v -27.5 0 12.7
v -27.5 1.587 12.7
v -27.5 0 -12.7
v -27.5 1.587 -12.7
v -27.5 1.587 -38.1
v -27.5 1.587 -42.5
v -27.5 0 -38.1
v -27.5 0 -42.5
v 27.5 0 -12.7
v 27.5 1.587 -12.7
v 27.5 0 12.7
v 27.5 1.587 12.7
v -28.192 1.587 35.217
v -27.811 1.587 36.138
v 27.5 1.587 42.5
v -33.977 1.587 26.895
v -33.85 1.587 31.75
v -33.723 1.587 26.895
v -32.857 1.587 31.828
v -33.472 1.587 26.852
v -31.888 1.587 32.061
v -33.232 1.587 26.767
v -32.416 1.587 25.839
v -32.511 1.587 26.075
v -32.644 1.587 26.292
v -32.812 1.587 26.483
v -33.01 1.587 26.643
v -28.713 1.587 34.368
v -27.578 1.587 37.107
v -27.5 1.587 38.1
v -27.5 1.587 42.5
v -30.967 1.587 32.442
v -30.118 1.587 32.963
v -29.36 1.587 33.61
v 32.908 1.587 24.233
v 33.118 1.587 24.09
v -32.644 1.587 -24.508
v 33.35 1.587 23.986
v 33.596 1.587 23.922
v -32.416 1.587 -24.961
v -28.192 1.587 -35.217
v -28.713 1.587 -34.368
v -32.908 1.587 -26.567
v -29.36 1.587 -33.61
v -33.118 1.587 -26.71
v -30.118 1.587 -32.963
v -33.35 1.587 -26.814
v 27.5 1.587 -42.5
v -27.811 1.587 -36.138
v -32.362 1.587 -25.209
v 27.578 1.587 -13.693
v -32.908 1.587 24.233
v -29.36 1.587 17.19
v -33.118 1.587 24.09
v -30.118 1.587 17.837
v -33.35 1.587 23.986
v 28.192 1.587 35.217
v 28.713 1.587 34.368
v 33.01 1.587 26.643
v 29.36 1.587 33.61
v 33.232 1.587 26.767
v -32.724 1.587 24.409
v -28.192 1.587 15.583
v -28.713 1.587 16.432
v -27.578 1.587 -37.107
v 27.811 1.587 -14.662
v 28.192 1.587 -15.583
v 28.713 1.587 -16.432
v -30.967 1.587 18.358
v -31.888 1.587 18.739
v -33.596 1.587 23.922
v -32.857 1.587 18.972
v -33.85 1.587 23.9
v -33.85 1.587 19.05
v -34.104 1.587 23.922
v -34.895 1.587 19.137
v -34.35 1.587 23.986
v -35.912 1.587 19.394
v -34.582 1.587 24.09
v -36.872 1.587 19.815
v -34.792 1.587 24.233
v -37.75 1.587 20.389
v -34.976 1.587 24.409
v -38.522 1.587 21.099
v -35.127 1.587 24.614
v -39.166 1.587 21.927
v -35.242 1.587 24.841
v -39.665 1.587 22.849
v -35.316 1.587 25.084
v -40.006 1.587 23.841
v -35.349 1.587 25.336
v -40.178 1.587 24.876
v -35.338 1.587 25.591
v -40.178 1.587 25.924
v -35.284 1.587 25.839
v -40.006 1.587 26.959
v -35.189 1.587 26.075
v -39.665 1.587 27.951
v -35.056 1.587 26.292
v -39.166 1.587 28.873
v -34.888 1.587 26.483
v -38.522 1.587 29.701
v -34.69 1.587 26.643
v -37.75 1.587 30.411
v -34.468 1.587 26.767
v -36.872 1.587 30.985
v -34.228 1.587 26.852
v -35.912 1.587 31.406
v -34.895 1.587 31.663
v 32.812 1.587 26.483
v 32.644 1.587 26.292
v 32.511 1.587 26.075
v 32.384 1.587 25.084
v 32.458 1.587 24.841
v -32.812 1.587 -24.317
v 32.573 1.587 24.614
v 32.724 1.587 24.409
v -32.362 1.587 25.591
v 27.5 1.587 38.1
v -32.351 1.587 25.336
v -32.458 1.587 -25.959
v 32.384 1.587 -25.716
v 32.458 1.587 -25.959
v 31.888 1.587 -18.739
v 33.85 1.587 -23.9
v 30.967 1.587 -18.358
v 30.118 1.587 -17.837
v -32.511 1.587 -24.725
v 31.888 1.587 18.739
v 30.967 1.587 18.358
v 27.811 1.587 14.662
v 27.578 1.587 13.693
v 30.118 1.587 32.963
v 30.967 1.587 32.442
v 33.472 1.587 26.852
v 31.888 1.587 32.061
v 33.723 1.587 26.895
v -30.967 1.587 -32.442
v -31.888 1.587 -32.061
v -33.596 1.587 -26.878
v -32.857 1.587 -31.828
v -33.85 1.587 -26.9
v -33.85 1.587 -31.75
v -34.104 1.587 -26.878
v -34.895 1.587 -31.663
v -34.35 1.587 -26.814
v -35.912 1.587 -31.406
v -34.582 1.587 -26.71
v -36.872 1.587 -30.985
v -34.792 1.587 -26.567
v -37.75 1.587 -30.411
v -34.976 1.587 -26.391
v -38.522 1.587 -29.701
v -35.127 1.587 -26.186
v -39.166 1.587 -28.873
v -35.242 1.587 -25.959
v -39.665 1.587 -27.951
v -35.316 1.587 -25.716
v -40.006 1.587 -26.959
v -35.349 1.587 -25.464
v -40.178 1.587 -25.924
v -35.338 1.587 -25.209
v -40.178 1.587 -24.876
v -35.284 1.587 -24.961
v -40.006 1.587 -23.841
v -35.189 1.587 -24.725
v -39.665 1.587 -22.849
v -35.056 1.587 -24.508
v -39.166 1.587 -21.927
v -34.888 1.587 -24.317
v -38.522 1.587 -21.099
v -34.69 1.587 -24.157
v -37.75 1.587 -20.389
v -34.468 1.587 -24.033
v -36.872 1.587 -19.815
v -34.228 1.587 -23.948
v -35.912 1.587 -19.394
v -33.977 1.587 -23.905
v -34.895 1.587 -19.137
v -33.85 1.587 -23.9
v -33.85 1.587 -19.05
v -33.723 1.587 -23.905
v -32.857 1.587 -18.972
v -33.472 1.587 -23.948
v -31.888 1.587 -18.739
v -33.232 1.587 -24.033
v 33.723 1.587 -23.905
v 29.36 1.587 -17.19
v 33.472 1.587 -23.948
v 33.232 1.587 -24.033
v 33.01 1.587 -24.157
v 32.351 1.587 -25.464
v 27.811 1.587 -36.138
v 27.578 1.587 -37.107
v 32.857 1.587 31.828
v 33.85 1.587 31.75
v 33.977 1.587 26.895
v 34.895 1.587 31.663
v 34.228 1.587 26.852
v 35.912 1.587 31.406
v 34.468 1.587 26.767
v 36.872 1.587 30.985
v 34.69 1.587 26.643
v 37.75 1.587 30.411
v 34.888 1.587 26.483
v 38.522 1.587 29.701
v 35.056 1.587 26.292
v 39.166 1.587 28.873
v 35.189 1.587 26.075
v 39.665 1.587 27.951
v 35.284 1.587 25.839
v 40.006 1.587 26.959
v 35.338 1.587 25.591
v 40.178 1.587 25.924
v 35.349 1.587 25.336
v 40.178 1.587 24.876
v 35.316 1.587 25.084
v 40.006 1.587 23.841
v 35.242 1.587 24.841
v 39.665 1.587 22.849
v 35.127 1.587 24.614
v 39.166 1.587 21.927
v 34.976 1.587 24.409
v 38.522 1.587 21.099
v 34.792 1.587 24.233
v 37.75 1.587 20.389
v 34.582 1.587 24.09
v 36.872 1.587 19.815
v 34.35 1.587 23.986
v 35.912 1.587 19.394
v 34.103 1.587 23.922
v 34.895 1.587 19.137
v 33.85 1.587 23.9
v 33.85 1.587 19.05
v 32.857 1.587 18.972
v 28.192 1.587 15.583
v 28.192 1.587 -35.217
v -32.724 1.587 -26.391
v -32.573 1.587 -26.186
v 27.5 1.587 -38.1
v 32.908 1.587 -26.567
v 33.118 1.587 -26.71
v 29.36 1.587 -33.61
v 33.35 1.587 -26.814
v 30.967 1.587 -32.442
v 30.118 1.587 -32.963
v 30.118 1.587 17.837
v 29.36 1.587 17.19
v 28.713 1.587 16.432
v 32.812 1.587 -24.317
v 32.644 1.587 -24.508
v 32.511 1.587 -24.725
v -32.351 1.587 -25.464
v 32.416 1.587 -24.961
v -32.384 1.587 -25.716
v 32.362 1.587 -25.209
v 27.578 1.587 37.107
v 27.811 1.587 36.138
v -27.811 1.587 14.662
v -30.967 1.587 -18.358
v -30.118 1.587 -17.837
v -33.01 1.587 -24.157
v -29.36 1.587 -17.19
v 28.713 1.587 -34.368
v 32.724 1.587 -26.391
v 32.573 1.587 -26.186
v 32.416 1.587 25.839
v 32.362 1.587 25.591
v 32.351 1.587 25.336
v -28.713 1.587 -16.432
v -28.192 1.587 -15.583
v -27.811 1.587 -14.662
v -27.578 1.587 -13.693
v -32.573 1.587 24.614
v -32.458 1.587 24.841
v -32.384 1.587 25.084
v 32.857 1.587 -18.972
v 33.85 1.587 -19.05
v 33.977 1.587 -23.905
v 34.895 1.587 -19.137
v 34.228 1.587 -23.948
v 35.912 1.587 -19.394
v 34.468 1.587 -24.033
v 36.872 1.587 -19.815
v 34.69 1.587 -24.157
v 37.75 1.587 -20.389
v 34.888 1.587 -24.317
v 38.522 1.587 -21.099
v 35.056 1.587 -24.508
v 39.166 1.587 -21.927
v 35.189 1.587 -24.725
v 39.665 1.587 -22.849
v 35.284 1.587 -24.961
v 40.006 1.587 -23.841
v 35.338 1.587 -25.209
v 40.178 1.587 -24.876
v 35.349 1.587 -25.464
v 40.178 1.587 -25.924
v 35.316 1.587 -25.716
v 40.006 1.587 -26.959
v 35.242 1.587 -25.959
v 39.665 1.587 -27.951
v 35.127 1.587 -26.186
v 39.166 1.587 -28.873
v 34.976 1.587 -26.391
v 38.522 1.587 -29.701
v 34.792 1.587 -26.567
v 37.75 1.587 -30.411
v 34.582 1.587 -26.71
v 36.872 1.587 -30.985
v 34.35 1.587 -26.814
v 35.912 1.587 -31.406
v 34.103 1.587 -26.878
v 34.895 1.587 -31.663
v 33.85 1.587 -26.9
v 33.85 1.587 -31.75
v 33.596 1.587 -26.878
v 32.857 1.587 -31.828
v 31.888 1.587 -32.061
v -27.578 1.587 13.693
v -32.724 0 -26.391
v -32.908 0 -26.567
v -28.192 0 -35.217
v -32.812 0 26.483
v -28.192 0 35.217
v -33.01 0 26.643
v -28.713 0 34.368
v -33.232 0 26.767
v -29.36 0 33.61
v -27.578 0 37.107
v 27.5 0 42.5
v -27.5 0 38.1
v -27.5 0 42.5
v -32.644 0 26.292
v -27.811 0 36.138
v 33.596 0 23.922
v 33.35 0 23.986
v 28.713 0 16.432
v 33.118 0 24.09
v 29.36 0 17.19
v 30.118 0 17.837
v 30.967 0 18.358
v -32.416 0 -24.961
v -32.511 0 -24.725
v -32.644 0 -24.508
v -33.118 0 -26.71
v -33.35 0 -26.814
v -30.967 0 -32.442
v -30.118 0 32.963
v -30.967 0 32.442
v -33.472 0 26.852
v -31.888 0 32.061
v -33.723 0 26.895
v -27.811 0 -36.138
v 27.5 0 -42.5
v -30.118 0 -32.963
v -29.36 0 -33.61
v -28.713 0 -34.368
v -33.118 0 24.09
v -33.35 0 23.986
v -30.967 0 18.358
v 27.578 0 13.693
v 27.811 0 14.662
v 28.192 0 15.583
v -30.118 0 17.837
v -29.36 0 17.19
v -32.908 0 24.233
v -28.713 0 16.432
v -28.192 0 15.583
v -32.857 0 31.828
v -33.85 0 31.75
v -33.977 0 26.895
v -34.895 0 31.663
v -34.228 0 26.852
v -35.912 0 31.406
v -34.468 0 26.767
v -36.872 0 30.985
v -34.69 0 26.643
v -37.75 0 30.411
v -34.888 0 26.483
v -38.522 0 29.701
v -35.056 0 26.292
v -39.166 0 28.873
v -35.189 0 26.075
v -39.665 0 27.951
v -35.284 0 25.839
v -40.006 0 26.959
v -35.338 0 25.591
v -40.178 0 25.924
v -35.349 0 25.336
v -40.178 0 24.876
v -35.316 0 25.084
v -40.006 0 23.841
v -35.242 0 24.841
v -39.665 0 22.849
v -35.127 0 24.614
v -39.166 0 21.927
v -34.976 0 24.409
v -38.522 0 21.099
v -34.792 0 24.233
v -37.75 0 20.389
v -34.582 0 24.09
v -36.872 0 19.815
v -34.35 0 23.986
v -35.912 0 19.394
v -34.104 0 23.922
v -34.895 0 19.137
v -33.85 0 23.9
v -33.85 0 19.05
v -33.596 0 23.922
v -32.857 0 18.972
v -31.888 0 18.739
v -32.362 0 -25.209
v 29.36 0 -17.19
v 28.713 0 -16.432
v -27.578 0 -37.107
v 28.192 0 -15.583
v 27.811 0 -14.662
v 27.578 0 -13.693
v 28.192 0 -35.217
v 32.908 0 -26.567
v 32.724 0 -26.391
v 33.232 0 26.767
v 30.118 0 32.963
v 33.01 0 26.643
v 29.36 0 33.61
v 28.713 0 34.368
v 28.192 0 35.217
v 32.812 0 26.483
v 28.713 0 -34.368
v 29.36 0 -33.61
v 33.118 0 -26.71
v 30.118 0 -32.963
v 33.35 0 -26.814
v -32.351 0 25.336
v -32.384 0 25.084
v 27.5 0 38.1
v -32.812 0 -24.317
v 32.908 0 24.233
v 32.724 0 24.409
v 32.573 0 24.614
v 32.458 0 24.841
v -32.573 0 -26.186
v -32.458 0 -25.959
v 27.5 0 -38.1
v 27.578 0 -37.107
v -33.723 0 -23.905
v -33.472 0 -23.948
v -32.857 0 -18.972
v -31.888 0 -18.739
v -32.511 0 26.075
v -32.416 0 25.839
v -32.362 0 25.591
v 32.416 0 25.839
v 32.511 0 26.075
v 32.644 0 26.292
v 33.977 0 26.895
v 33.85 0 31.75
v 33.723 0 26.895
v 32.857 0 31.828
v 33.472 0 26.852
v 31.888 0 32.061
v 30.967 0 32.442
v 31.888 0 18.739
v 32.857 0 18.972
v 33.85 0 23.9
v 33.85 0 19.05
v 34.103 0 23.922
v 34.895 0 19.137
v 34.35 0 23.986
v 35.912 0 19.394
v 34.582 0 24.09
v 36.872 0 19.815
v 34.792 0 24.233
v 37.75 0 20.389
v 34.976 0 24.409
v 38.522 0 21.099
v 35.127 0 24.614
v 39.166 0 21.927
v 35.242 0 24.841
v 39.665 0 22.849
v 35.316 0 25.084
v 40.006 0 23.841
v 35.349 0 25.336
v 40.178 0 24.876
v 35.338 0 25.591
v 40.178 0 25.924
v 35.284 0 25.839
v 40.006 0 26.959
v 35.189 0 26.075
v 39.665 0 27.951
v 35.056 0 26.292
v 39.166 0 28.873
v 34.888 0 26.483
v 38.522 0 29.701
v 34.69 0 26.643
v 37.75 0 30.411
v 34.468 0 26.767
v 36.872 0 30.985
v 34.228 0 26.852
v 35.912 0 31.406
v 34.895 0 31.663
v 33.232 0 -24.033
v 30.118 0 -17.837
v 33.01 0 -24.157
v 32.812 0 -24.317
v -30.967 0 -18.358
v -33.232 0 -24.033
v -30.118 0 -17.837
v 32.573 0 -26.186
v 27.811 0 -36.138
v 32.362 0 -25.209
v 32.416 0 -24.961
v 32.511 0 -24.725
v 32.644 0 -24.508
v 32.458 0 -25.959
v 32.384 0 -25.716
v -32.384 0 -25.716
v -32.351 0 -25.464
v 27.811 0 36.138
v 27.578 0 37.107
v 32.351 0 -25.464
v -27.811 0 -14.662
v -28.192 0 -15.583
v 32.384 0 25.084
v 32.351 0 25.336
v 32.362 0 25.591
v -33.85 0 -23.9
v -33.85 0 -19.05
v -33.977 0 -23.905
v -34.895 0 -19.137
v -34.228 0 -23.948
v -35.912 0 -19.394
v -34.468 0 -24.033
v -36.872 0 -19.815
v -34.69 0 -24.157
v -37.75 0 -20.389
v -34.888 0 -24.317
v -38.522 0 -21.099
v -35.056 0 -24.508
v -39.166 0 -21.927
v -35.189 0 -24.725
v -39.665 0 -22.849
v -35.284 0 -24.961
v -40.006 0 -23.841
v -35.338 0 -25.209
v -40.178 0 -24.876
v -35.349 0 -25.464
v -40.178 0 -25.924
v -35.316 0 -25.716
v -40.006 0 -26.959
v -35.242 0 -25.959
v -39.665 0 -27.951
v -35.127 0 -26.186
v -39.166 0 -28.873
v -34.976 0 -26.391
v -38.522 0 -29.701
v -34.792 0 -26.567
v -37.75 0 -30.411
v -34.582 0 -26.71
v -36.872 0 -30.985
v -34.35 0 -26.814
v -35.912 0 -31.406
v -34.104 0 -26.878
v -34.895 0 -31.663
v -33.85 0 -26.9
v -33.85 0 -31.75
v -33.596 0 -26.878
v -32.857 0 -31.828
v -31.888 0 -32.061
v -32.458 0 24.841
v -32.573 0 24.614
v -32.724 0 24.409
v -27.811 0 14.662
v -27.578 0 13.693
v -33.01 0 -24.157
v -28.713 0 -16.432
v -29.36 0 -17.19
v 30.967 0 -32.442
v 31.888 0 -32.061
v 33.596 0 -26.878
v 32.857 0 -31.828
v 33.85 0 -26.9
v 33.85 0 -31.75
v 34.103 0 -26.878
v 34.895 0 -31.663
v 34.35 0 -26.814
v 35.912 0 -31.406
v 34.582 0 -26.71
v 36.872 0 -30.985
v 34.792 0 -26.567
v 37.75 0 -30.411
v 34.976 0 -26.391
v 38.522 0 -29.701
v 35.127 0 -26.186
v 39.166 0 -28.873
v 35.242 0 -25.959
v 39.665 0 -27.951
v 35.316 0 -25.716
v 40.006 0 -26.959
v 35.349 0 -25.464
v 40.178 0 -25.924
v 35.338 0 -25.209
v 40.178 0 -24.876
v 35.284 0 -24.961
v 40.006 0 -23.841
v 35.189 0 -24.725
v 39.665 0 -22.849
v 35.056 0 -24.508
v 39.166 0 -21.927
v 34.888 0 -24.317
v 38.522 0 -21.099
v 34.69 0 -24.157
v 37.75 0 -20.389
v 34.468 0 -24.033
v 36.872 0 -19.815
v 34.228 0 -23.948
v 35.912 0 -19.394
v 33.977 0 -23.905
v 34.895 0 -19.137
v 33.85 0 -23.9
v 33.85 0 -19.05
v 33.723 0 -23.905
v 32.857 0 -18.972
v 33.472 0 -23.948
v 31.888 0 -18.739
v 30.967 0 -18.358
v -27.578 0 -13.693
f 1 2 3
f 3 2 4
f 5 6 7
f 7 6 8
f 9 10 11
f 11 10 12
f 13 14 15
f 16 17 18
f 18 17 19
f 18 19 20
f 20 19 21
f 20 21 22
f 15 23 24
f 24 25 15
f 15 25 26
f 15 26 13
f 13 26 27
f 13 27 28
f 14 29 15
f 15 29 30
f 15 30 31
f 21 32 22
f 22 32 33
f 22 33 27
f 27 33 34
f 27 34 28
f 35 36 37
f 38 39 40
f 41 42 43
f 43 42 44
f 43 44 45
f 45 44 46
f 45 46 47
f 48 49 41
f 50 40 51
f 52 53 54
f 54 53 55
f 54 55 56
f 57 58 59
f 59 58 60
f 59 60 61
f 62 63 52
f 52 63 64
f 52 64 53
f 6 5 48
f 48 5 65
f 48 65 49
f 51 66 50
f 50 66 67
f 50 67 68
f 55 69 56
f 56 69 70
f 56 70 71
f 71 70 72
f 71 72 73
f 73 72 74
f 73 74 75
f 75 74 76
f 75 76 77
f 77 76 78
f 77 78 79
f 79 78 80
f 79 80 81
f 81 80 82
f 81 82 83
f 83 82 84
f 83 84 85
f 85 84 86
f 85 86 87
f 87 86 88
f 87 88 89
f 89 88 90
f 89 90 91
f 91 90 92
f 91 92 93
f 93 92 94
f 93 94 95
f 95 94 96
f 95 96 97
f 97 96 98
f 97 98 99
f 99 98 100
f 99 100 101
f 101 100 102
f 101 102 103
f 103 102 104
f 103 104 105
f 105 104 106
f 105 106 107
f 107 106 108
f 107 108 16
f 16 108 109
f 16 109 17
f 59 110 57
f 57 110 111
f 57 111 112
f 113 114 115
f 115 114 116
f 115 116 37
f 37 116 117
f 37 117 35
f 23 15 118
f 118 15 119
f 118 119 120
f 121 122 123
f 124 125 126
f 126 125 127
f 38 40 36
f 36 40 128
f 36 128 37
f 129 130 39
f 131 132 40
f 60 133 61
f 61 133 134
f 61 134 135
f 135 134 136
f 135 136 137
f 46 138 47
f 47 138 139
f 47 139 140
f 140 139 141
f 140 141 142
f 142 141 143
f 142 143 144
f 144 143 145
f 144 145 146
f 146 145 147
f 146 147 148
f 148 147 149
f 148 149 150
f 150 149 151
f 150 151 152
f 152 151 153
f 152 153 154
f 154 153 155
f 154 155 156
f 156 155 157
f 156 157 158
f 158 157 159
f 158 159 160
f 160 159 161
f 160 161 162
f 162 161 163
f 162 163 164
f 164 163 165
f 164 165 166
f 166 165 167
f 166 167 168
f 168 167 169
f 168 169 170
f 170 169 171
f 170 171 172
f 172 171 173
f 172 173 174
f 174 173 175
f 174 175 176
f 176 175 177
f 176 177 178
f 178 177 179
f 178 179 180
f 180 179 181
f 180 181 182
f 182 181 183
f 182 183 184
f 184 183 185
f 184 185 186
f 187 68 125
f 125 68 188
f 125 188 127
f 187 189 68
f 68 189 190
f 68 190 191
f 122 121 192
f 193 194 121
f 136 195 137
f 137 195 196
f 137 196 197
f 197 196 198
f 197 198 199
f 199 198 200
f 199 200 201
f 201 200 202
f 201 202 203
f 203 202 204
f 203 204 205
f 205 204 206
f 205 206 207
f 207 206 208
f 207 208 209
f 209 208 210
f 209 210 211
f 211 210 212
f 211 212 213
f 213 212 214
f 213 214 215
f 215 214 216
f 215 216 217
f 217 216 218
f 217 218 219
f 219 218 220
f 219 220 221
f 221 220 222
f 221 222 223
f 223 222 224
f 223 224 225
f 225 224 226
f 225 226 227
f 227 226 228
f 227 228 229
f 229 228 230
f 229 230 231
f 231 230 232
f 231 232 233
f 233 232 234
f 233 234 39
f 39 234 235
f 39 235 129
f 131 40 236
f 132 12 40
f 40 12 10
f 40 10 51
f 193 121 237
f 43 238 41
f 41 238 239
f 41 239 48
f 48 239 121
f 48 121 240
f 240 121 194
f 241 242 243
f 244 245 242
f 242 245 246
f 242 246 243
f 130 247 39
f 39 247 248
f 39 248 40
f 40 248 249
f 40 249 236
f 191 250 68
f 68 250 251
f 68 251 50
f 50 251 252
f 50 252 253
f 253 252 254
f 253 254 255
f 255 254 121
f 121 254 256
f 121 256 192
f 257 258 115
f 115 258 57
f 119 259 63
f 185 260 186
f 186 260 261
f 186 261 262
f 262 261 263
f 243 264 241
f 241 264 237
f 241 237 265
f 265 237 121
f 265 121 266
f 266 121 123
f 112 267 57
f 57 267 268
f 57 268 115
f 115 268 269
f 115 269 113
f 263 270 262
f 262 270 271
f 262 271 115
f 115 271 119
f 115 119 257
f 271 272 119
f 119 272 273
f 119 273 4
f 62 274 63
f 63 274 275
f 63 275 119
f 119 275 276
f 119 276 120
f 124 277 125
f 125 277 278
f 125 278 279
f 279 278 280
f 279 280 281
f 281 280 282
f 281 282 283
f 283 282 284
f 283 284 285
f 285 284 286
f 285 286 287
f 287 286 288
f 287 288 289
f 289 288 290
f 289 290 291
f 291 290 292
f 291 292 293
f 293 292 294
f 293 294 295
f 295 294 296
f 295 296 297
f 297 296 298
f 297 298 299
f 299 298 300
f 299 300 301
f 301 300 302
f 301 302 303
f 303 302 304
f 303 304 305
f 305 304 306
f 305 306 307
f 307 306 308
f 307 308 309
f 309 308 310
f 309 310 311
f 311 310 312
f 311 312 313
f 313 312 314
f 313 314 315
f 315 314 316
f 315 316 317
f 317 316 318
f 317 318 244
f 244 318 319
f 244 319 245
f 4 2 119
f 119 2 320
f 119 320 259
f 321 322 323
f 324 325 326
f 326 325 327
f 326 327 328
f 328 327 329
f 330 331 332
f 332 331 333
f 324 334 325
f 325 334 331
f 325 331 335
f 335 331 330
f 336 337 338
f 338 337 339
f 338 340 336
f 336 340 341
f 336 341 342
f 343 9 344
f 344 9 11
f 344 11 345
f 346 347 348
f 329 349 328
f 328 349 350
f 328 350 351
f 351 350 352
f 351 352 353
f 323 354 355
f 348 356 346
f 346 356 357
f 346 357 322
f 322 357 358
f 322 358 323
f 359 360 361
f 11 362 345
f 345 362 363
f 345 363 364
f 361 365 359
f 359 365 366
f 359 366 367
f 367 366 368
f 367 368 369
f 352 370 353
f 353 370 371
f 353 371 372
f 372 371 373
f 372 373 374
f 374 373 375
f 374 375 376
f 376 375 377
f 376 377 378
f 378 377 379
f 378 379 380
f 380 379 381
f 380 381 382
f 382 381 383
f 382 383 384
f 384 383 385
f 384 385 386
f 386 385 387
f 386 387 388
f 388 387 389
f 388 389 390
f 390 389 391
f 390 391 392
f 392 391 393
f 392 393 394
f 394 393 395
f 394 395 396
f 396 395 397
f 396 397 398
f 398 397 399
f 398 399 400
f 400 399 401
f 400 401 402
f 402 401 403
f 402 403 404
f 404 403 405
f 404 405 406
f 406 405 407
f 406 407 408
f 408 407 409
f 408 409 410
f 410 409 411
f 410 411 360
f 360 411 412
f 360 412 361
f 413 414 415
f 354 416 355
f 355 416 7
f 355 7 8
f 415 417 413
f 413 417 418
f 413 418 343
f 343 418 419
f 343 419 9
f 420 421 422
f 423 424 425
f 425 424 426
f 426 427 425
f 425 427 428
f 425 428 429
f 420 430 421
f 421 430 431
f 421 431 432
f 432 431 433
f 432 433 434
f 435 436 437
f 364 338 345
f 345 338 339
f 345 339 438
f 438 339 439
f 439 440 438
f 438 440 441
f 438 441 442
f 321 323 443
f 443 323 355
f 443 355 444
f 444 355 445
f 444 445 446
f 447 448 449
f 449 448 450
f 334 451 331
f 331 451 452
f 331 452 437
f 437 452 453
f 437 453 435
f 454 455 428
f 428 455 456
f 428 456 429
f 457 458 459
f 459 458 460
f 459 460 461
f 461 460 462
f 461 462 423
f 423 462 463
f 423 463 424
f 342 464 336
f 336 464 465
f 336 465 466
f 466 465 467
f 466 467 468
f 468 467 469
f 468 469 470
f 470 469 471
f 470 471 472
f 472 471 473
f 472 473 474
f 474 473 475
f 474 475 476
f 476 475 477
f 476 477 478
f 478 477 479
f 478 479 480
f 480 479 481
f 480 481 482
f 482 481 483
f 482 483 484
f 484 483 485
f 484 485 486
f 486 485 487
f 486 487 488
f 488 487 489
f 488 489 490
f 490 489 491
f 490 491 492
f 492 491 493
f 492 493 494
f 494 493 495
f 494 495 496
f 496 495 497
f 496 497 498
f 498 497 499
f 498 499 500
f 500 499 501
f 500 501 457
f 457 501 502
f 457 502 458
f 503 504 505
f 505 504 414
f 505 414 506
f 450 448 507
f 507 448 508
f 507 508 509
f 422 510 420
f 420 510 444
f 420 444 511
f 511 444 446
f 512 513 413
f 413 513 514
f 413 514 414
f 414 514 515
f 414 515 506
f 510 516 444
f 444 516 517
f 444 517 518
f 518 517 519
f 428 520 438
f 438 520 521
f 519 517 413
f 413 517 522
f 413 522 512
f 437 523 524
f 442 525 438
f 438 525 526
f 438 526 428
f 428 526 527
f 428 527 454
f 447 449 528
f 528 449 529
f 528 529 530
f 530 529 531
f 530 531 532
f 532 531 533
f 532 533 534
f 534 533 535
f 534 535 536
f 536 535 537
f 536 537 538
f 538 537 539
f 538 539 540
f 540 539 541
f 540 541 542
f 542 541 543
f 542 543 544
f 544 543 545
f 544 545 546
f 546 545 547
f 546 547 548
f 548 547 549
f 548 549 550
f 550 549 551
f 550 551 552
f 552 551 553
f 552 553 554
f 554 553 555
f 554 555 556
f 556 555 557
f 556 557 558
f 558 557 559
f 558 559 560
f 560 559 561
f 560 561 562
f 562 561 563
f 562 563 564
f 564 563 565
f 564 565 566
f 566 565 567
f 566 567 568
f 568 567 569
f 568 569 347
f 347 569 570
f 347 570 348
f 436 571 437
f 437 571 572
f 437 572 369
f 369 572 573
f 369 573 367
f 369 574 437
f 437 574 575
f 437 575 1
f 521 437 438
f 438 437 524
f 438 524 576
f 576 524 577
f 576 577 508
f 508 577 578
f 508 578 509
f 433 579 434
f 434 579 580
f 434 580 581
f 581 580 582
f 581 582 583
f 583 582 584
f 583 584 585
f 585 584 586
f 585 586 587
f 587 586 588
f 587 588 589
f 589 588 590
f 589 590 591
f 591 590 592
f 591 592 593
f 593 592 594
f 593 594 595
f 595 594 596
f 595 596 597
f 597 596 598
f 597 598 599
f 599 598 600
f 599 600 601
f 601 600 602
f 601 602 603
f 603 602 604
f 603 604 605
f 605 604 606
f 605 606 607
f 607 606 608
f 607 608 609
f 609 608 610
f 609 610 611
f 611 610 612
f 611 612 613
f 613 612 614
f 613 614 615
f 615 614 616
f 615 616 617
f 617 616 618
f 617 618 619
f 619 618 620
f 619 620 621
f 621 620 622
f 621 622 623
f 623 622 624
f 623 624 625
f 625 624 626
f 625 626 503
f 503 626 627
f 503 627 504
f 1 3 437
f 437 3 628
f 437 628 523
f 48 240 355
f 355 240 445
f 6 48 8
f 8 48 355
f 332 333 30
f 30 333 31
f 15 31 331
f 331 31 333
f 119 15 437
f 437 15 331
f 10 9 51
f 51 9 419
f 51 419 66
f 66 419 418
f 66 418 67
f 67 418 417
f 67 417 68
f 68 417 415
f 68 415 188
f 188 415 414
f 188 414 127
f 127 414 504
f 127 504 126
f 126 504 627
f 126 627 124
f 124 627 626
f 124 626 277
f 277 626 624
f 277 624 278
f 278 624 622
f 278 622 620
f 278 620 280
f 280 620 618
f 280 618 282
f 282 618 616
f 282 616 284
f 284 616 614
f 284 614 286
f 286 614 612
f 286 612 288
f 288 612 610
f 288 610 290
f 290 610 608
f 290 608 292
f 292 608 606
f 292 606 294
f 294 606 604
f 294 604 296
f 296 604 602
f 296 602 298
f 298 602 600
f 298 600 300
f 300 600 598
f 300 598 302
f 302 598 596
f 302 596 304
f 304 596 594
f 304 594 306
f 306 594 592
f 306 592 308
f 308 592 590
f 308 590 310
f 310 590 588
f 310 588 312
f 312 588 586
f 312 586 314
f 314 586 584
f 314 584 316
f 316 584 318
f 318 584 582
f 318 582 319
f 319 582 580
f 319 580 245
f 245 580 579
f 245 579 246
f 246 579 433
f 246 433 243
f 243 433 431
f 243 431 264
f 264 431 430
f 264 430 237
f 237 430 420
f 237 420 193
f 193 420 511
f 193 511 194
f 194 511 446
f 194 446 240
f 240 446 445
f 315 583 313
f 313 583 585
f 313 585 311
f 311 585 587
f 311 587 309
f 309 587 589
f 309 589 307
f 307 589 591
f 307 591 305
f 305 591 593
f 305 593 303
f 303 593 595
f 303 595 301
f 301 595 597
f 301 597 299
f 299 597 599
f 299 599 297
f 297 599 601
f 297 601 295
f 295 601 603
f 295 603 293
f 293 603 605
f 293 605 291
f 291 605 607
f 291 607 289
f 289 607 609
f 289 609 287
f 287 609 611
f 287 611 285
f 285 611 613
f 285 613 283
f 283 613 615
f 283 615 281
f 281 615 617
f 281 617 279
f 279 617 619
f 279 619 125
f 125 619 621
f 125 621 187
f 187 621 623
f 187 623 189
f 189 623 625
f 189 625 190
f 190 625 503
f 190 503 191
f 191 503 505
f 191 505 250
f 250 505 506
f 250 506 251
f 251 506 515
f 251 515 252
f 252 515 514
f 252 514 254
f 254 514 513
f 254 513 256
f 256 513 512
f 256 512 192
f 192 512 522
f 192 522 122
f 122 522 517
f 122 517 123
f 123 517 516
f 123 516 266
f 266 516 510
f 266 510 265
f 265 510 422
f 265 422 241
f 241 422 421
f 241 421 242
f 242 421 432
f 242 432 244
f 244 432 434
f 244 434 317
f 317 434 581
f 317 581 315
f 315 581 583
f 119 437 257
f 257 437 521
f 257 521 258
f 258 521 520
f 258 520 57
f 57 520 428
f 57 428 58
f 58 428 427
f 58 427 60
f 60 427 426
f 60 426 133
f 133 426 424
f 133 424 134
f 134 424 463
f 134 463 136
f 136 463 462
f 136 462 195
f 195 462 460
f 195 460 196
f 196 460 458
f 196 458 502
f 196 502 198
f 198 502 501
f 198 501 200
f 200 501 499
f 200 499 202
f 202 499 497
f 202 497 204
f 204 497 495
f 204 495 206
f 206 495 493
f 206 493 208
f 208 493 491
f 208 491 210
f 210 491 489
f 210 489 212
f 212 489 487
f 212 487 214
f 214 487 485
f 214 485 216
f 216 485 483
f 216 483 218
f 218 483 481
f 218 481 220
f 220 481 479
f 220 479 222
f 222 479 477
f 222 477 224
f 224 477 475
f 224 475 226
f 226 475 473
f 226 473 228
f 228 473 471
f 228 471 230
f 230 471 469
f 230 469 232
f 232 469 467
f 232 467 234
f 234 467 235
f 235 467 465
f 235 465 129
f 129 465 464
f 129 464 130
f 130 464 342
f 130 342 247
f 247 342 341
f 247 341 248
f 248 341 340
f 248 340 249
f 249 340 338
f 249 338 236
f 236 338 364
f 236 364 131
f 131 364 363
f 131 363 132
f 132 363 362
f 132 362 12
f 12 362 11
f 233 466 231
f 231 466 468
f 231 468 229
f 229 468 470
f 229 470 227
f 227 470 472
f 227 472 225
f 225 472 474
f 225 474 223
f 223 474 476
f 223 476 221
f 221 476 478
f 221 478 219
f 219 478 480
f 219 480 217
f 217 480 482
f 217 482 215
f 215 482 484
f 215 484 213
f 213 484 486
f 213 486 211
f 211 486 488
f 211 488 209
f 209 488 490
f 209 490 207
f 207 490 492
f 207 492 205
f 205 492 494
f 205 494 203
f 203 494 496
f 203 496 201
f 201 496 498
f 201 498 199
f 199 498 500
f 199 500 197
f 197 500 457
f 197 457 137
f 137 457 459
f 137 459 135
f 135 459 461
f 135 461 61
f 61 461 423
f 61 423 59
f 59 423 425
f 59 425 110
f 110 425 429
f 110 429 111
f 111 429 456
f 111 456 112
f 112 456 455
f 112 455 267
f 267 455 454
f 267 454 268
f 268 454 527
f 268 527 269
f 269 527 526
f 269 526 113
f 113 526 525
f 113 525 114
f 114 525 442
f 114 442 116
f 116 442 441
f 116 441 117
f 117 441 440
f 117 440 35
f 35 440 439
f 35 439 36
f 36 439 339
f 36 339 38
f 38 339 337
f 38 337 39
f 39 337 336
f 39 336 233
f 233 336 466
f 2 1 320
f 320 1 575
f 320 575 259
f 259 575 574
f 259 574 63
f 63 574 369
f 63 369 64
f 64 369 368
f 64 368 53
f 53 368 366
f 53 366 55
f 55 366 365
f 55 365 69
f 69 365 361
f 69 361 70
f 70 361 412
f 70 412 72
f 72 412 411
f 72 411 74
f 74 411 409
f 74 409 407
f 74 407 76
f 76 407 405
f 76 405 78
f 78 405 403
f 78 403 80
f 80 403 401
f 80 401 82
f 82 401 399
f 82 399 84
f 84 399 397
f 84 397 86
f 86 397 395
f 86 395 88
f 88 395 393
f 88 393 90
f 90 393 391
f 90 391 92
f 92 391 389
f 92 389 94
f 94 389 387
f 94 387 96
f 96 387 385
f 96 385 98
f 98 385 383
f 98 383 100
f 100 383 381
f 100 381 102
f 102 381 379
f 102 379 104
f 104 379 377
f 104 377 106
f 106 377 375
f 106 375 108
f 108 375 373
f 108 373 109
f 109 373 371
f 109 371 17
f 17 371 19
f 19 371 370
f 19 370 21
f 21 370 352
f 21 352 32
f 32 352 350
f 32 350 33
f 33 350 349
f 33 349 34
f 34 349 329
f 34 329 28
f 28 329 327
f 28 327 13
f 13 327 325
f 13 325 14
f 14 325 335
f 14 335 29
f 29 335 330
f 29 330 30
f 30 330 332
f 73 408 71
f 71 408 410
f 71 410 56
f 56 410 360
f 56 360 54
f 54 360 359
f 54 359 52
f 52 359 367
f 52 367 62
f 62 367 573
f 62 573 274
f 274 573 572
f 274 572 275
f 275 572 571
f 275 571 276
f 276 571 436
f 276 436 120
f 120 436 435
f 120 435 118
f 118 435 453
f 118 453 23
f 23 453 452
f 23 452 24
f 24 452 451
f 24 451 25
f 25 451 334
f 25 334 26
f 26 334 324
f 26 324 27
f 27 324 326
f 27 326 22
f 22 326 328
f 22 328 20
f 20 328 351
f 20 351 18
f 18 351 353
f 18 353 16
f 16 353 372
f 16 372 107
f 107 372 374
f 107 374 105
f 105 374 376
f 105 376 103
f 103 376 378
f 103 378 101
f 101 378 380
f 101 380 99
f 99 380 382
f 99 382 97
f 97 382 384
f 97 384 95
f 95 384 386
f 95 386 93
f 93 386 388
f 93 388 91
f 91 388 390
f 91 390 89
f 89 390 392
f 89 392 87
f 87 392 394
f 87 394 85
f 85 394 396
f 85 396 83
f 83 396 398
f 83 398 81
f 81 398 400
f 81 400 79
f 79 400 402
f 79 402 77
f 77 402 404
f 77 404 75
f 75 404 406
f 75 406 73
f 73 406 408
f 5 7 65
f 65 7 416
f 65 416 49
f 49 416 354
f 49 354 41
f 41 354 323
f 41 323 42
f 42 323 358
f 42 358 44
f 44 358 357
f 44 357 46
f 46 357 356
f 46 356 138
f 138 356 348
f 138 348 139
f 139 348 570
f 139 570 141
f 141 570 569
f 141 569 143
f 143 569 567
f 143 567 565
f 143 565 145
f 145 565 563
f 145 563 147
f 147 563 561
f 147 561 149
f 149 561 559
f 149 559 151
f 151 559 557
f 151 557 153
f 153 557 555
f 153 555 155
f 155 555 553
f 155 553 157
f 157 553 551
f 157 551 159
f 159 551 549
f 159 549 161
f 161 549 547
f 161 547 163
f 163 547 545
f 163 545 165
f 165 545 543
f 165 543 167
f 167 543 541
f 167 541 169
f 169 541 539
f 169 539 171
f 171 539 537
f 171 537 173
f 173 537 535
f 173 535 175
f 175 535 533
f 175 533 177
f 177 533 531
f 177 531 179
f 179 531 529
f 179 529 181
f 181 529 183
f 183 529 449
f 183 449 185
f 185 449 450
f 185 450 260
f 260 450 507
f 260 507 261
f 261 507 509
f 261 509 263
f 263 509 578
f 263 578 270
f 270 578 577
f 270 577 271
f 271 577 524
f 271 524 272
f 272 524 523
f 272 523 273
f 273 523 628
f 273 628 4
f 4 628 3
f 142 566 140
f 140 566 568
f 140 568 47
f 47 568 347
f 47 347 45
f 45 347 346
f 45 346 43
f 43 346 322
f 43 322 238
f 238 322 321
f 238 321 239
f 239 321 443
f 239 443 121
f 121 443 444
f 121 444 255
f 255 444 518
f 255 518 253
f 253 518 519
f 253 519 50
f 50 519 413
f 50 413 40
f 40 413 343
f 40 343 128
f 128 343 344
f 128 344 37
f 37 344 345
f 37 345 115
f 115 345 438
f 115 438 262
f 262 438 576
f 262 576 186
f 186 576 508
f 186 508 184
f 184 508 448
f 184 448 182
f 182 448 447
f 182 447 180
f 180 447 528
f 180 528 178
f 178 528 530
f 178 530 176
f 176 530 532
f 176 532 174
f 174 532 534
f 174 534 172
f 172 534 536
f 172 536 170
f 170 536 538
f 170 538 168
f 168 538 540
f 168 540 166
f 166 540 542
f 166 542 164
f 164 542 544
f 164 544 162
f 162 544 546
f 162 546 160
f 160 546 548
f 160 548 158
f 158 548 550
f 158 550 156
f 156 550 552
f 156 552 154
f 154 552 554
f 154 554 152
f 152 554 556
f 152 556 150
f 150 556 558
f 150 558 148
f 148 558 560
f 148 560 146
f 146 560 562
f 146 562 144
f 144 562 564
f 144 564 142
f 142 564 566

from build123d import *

# Parameters (mm, degrees)
SKETCH1_R               = 1.5
BOSS_EXTRUDE1_DEPTH     = 1.5875
MIRROR2_COPY_1_SKETCH_R = 1.5
MIRROR2_COPY_1_DEPTH    = 1.5875


with BuildPart() as part:
    # Sketch1 → Boss-Extrude1 (new body)
    with BuildSketch(Plane(origin=(0, 0, 0), x_dir=(1, 0, 0), z_dir=(0, 1, 0))):
        with BuildLine():
            Line((-27.5, -42.5), (27.5, -42.5))
            Line((27.5, -42.5), (27.5, 12.7))
            ThreePointArc((27.5, 12.7), (29.359871939, 17.190128061), (33.85, 19.05))
            ThreePointArc((33.85, 19.05), (40.2, 25.4), (33.85, 31.75))
            ThreePointArc((33.85, 31.75), (29.359871939, 33.609871939), (27.5, 38.1))
            Line((27.5, 38.1), (27.5, 42.5))
            Line((27.5, 42.5), (-27.5, 42.5))
            Line((-27.5, 42.5), (-27.5, -42.5))
        make_face()
        with Locations((33.85, 25.4)):
            Circle(SKETCH1_R, mode=Mode.SUBTRACT)
    boss_extrude1 = extrude(amount=BOSS_EXTRUDE1_DEPTH)

    # Mirror1: Boss-Extrude1 across plane
    add(boss_extrude1.mirror(Plane.XY))

    # Mirror2: Boss-Extrude1 across plane
    add(boss_extrude1.mirror(Plane(origin=(0, 0, 0), x_dir=(0, 0, 1), z_dir=(1, 0, 0))))

    # Mirror2 copy 1 sketch → Mirror2 copy 1 (add)
    with BuildSketch(Plane(origin=(0, 0, 0), x_dir=(-1, 0, 0), z_dir=(0, 1, 0))):
        with BuildLine():
            Line((-27.5, -42.5), (27.5, -42.5))
            Line((27.5, -42.5), (27.5, 12.7))
            ThreePointArc((27.5, 12.7), (29.359871939, 17.190128061), (33.85, 19.05))
            ThreePointArc((33.85, 19.05), (40.2, 25.4), (33.85, 31.75))
            ThreePointArc((33.85, 31.75), (29.359871939, 33.609871939), (27.5, 38.1))
            Line((27.5, 38.1), (27.5, 42.5))
            Line((27.5, 42.5), (-27.5, 42.5))
            Line((-27.5, 42.5), (-27.5, -42.5))
        make_face()
        with Locations((33.85, 25.4)):
            Circle(MIRROR2_COPY_1_SKETCH_R, mode=Mode.SUBTRACT)
    extrude(amount=MIRROR2_COPY_1_DEPTH)


solid = part.part
